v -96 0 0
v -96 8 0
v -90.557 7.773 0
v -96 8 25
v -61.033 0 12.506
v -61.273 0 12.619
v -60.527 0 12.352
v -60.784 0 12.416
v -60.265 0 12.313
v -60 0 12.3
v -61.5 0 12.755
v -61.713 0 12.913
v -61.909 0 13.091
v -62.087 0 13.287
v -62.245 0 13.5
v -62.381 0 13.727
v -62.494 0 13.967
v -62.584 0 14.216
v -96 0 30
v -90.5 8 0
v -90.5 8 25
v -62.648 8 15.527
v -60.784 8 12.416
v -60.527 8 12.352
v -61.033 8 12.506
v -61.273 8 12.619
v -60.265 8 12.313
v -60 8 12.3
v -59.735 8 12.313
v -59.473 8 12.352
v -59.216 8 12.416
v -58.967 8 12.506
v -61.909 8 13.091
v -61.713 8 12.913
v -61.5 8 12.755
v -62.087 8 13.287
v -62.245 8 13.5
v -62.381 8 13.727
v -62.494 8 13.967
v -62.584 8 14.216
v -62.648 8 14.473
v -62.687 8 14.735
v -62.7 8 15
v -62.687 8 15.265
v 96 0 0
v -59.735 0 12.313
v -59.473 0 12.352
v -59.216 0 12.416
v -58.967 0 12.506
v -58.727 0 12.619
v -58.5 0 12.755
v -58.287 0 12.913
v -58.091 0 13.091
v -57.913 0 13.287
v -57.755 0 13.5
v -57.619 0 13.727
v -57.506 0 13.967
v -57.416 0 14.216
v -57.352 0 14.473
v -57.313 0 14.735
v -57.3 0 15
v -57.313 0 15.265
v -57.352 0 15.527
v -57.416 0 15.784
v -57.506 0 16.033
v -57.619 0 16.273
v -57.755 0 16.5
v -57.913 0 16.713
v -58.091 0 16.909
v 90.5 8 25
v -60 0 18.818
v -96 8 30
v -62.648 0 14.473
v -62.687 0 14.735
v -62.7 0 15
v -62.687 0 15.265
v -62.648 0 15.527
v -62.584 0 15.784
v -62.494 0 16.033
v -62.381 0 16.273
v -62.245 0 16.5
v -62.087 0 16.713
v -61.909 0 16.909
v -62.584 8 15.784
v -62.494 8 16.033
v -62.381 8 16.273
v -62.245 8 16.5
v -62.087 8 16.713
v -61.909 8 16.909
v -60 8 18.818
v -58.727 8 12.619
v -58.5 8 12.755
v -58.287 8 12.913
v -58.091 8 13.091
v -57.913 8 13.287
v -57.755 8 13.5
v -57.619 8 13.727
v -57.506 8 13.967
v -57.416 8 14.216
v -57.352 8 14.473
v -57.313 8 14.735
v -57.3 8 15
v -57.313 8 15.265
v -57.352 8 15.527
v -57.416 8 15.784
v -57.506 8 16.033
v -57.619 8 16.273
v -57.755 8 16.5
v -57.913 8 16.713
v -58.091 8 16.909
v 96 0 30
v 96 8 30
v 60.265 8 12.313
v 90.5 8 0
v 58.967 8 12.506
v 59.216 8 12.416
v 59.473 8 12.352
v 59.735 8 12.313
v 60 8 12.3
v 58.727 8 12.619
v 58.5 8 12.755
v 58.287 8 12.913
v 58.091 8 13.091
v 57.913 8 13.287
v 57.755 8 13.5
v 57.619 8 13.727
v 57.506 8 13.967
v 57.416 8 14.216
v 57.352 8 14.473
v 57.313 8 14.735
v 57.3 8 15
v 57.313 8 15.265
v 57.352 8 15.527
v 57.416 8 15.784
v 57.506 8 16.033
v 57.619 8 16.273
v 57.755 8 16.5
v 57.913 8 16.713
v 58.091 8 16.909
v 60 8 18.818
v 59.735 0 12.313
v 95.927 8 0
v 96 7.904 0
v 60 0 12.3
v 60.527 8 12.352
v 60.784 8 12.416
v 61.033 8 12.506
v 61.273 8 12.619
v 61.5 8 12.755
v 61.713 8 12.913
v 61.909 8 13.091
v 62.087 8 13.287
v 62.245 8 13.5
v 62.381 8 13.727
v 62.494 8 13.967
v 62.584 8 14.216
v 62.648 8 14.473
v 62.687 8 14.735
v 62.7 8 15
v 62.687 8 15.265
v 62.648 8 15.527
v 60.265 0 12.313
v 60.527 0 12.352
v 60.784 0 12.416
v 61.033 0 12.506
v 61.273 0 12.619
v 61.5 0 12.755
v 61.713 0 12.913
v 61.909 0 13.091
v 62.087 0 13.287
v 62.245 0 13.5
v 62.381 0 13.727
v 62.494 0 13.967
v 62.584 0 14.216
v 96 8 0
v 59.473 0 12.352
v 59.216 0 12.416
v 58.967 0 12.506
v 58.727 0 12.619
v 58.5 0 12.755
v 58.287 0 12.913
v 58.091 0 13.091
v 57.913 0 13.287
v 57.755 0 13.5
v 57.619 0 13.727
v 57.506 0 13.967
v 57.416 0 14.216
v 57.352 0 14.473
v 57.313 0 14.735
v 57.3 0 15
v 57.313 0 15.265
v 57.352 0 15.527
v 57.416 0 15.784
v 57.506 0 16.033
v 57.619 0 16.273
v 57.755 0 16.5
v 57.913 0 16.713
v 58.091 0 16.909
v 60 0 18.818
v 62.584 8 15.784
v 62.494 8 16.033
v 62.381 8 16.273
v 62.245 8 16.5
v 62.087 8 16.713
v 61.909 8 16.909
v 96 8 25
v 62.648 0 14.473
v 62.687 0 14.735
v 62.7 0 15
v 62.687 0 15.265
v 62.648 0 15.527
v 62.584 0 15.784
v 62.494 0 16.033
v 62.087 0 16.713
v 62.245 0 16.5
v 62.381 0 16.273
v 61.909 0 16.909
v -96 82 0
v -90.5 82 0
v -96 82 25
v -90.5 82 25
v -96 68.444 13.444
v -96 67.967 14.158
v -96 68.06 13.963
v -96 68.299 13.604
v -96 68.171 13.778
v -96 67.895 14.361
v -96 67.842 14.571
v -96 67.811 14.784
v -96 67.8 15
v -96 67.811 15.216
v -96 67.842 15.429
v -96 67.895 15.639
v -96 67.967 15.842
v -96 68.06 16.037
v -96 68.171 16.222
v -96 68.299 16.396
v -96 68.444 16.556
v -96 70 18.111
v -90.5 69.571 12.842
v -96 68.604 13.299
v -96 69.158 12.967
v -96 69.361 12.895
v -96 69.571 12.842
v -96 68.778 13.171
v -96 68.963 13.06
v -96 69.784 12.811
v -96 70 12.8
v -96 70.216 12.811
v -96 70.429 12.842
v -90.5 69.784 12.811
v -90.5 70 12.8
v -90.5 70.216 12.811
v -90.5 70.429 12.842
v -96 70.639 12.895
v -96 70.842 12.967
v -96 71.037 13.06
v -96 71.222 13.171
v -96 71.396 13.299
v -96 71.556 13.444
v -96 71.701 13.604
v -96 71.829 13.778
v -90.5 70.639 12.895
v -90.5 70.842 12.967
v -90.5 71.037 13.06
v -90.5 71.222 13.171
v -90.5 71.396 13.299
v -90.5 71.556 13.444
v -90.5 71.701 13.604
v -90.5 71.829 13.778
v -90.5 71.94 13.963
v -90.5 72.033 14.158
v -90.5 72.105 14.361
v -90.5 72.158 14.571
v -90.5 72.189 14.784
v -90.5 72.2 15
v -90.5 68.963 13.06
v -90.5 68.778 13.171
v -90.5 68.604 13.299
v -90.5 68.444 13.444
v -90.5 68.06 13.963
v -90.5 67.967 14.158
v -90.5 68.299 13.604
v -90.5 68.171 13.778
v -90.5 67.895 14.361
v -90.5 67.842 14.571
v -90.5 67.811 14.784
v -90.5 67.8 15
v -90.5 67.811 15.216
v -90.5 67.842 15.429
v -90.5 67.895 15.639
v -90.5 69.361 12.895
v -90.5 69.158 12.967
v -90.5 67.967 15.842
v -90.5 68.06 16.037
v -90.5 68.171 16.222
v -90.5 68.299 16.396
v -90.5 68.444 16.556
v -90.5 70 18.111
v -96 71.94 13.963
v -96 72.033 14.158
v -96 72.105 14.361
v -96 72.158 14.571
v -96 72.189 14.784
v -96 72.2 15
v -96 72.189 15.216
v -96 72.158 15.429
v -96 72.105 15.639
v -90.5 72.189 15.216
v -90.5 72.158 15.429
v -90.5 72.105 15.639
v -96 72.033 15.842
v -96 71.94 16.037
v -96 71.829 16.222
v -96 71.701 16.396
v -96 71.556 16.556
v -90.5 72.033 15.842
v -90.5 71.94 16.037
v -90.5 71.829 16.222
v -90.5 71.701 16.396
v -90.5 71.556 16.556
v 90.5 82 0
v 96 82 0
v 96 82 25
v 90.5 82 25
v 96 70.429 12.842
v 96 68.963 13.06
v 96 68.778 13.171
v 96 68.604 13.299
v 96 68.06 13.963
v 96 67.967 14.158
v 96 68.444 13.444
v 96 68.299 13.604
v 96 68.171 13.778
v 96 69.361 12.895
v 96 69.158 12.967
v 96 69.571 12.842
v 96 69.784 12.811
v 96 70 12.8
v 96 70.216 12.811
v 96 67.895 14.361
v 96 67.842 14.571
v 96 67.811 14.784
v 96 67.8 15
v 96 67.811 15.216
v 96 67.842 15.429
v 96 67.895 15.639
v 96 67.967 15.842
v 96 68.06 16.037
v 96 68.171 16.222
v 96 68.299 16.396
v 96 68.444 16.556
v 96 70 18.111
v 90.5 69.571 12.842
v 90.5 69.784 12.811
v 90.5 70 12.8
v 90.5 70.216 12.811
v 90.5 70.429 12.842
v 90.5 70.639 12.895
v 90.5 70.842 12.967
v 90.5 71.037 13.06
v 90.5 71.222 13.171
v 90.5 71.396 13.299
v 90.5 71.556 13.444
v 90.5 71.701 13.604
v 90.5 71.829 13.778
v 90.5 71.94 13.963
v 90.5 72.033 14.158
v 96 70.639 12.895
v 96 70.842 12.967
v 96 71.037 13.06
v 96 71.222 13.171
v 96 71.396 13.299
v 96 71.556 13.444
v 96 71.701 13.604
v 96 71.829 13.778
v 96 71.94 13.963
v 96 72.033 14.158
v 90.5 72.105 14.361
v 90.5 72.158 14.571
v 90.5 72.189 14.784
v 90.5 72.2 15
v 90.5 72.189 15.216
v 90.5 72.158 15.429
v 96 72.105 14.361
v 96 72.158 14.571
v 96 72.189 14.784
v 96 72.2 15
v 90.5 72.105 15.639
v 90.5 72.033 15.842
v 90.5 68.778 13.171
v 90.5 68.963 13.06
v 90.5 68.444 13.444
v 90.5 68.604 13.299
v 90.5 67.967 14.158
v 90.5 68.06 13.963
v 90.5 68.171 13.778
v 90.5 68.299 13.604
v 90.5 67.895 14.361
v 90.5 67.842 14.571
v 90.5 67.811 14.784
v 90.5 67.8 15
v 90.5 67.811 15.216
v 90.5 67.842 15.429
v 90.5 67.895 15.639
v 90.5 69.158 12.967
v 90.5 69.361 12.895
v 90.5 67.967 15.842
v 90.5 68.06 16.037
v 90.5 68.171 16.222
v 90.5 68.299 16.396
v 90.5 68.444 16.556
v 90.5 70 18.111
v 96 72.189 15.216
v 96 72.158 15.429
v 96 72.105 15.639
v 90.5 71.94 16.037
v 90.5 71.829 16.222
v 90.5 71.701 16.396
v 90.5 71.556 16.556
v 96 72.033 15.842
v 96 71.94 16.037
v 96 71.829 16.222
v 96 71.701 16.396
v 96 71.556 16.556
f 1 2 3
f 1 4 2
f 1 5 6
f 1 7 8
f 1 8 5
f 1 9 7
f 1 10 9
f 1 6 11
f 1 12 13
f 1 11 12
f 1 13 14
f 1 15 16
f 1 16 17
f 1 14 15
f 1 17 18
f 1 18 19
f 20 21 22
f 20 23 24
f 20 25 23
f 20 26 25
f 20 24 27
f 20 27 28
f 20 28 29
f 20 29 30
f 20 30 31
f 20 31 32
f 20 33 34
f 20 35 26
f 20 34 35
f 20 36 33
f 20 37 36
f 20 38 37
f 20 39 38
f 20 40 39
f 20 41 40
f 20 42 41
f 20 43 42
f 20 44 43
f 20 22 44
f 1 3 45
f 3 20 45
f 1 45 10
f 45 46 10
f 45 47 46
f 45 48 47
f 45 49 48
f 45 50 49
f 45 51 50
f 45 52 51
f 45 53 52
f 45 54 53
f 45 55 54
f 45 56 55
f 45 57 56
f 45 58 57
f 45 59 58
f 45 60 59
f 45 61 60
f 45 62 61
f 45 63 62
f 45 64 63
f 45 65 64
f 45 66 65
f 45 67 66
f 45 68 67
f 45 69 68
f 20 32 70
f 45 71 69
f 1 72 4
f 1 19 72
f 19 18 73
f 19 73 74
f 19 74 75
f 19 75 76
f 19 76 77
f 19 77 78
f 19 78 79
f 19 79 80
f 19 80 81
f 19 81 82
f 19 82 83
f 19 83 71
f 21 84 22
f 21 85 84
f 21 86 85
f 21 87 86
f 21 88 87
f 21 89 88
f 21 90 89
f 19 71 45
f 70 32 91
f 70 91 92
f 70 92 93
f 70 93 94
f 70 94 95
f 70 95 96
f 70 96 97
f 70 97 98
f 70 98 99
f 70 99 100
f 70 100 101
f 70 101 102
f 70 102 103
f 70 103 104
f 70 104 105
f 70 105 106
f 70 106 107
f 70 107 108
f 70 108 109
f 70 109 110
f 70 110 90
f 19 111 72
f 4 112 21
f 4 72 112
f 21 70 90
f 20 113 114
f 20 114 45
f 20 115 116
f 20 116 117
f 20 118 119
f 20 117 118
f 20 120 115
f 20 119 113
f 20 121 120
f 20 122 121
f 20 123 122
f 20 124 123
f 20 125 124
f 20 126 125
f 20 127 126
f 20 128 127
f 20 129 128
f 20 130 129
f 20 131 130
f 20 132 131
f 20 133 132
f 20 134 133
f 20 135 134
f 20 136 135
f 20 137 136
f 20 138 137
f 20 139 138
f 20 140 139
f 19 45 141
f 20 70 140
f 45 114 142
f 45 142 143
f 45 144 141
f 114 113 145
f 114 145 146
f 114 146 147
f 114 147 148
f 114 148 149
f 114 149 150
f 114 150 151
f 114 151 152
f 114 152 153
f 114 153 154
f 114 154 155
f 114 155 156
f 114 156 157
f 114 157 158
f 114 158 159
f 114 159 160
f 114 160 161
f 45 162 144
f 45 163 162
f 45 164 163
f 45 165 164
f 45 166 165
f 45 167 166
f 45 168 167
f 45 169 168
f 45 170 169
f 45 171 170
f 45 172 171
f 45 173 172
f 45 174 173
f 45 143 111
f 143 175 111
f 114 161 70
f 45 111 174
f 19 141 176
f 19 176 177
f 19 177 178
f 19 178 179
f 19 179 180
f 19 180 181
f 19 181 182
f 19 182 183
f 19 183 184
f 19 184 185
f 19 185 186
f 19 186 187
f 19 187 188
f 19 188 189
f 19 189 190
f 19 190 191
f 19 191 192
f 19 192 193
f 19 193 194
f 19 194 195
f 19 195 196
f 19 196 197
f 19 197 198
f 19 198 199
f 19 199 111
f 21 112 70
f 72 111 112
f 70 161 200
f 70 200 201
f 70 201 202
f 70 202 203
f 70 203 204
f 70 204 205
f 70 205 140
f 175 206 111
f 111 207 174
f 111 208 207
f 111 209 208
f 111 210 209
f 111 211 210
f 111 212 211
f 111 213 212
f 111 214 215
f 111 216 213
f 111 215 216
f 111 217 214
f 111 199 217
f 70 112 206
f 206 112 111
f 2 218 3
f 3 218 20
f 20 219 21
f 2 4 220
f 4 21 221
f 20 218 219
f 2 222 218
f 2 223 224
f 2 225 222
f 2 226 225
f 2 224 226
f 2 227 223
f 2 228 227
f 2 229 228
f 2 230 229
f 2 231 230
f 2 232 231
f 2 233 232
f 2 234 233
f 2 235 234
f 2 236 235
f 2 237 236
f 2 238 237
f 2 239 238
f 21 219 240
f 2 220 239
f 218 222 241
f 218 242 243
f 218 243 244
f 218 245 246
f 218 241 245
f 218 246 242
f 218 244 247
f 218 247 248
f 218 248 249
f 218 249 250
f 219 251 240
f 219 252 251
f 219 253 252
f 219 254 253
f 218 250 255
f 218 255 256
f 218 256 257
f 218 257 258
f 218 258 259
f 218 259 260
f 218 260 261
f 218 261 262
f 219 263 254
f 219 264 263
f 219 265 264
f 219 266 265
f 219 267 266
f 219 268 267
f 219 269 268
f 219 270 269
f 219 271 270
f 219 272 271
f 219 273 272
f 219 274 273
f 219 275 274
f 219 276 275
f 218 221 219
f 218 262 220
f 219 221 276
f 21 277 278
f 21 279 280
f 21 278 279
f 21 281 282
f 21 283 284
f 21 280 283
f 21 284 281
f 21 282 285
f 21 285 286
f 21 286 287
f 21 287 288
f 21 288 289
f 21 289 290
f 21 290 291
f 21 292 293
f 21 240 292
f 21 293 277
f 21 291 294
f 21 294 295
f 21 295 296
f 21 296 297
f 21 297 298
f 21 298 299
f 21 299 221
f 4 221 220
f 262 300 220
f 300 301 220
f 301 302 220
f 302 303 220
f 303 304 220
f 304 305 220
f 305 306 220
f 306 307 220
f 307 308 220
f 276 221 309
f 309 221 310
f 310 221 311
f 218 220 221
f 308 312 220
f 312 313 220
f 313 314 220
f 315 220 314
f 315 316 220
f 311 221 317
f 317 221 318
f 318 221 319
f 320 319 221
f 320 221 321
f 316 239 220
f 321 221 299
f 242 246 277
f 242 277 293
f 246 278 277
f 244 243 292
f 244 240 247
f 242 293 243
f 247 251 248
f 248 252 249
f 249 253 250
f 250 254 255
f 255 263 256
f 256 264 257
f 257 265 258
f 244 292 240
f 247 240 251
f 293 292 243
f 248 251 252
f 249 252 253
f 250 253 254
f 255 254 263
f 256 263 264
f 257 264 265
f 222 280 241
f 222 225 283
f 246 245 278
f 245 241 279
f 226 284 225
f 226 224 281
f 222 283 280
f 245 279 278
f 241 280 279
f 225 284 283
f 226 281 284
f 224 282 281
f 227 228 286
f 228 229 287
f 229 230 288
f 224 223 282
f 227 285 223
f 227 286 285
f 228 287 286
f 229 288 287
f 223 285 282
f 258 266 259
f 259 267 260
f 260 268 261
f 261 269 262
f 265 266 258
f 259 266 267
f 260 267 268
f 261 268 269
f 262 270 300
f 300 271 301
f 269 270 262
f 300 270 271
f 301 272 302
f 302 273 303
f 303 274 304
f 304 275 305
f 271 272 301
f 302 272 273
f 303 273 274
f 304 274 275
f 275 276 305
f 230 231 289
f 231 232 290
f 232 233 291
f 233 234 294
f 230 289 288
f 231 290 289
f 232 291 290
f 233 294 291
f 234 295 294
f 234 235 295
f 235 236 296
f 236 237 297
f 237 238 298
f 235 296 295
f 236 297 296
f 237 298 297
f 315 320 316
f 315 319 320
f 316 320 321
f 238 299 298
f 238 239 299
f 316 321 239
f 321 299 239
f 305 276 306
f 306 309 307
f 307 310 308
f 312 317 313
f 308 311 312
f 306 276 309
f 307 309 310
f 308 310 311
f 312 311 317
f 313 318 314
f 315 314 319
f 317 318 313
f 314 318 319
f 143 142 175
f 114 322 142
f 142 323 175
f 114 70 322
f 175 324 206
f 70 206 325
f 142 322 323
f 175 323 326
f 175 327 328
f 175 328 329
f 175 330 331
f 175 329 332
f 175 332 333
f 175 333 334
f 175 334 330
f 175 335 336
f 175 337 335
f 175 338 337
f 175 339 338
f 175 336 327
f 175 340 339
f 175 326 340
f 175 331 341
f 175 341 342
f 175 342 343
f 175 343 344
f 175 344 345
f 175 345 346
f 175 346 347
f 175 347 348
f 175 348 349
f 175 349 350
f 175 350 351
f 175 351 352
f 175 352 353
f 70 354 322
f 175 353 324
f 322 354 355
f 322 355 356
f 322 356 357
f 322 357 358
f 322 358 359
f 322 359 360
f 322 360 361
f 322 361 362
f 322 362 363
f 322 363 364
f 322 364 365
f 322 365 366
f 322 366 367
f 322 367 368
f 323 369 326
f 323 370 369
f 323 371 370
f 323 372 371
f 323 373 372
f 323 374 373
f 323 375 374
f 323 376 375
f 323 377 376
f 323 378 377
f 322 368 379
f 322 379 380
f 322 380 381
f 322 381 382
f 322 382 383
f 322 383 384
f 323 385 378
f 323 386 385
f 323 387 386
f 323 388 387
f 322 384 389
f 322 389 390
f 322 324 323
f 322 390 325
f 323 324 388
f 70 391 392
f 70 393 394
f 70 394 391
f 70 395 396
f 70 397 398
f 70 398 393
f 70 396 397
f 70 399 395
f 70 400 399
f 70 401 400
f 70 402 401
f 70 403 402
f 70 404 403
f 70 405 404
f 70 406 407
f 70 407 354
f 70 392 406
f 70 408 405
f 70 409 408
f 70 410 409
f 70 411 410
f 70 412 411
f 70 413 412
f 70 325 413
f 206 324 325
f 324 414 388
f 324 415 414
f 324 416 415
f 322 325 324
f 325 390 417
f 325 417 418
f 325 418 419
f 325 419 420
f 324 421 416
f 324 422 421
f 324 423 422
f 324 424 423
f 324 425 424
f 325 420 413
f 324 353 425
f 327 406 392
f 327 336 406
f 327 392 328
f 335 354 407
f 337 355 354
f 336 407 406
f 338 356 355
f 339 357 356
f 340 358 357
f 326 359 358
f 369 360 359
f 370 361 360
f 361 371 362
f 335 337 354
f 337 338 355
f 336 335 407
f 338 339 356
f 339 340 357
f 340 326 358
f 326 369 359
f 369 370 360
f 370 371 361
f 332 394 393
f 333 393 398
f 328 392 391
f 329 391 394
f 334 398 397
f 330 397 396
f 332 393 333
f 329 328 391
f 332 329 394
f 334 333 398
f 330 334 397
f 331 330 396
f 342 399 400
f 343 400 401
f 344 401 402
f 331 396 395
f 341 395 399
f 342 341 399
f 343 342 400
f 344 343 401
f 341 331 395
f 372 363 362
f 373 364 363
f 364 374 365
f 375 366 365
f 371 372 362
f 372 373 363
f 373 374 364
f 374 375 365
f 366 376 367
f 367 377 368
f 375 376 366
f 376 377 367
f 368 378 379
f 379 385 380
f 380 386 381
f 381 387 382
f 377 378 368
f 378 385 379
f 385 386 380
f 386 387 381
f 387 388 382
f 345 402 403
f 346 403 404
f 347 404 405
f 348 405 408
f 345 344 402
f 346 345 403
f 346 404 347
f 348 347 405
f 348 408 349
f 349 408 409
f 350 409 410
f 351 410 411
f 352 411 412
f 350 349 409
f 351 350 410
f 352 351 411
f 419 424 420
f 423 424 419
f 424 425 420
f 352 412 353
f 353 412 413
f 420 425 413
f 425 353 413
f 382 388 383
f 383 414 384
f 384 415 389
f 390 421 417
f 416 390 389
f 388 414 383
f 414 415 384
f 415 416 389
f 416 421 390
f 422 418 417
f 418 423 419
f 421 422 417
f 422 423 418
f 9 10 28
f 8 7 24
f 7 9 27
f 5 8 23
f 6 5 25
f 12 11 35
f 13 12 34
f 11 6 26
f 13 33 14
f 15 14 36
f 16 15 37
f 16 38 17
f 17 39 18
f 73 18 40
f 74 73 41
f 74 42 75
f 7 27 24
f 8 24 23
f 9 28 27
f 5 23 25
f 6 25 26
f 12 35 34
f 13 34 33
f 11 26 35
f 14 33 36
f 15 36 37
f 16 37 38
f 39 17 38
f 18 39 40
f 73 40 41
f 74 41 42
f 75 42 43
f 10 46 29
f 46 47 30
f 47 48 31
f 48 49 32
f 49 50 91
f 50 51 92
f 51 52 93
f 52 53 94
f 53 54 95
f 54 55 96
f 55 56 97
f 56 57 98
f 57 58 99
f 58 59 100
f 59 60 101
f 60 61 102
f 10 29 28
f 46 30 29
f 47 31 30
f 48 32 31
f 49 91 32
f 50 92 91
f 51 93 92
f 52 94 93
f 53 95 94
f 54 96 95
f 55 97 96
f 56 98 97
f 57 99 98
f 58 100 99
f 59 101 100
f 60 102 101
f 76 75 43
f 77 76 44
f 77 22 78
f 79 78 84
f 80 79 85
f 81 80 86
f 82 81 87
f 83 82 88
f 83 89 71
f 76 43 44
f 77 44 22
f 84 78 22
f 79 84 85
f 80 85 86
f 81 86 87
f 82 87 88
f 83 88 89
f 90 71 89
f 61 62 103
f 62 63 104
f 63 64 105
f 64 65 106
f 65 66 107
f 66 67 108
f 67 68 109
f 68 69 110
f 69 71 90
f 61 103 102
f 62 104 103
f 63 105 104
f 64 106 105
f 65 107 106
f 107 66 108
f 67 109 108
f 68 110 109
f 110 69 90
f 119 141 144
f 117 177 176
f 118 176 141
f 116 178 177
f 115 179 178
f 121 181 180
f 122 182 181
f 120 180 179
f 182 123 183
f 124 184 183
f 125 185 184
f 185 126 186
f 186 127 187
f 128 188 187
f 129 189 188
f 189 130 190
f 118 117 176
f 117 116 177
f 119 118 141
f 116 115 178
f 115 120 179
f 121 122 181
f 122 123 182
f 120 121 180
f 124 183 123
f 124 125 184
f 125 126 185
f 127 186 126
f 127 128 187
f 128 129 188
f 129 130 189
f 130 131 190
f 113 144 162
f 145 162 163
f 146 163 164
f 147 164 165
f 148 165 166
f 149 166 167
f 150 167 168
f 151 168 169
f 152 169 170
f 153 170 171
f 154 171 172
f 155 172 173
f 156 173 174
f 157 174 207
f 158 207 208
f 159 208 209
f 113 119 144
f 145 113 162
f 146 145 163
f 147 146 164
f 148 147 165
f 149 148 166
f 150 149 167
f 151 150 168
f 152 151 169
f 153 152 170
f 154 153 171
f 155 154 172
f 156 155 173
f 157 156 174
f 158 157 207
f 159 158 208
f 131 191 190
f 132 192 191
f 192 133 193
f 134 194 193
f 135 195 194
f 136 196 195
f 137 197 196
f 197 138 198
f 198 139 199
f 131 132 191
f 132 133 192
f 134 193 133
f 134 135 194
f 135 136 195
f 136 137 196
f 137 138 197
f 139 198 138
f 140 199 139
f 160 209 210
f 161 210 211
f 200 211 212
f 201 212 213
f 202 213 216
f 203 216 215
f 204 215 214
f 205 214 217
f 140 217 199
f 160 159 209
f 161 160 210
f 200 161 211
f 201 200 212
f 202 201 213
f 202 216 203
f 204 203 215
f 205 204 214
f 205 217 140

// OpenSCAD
// VMax external draft 1; mm; generated by external-enclosure-v1.py
translate([0,70,-12]){difference(){difference(){difference(){union(){difference(){union(){translate([0,-66,12]){translate([-96.0,-4.0,0])cube([192,8,30]);}translate([-93.25,-25.5,12]){translate([-2.75,-37.5,0])cube([5.5,75,25]);}}translate([-98.25,0,27]){rotate([0,0,90]){rotate([90,0,0]){linear_extrude(height=10)polygon(points=[[-1.5556349186104046, 1.5556349186104048], [-1.7006229973980216, 1.3956652251600201], [-1.8292331470655998, 1.2222545126431248], [-1.940226781566381, 1.0370728210171953], [-2.032534971524831, 0.8419035512031978], [-2.1052687386108597, 0.6386262899598173], [-2.157727616887107, 0.429198708435482], [-2.189406398678833, 0.21563770872503382], [-2.2, 2.6942229581241775e-16], [-2.1894063986788335, -0.21563770872503332], [-2.157727616887107, -0.4291987084354824], [-2.1052687386108597, -0.6386262899598167], [-2.0325349715248313, -0.8419035512031974], [-1.9402267815663812, -1.037072821017195], [-1.8292331470655996, -1.2222545126431252], [-1.7006229973980218, -1.3956652251600197], [-1.555634918610405, -1.5556349186104046], [-1.3956652251600212, -1.7006229973980207], [-1.2222545126431248, -1.8292331470655996], [-1.0370728210171953, -1.940226781566381], [-0.8419035512031969, -2.0325349715248313], [-0.6386262899598174, -2.1052687386108597], [-0.4291987084354831, -2.1577276168871067], [-0.21563770872503302, -2.1894063986788335], [-4.0413344371862655e-16, -2.2], [0.2156377087250322, -2.1894063986788335], [0.4291987084354823, -2.157727616887107], [0.6386262899598165, -2.1052687386108597], [0.841903551203198, -2.032534971524831], [1.0370728210171947, -1.9402267815663812], [1.2222545126431241, -1.8292331470656003], [1.3956652251600203, -1.7006229973980214], [1.5556349186104044, -1.555634918610405], [1.700622997398022, -1.3956652251600197], [1.8292331470655996, -1.2222545126431248], [1.9402267815663807, -1.0370728210171956], [2.0325349715248313, -0.8419035512031972], [2.1052687386108597, -0.6386262899598175], [2.1577276168871067, -0.42919870843548324], [2.1894063986788335, -0.21563770872503313], [2.2, -5.388445916248355e-16], [2.189406398678833, 0.21563770872503402], [2.157727616887107, 0.4291987084354822], [2.1052687386108597, 0.6386262899598164], [2.032534971524831, 0.8419035512031979], [1.9402267815663812, 1.0370728210171947], [1.8292331470656005, 1.2222545126431241], [1.7006229973980214, 1.3956652251600201], [1.555634918610405, 1.5556349186104044], [0, 3.1112698372208096]]);}}}}translate([93.25,-25.5,12]){translate([-2.75,-37.5,0])cube([5.5,75,25]);}}translate([88.25,0,27]){rotate([0,0,90]){rotate([90,0,0]){linear_extrude(height=10)polygon(points=[[-1.5556349186104046, 1.5556349186104048], [-1.7006229973980216, 1.3956652251600201], [-1.8292331470655998, 1.2222545126431248], [-1.940226781566381, 1.0370728210171953], [-2.032534971524831, 0.8419035512031978], [-2.1052687386108597, 0.6386262899598173], [-2.157727616887107, 0.429198708435482], [-2.189406398678833, 0.21563770872503382], [-2.2, 2.6942229581241775e-16], [-2.1894063986788335, -0.21563770872503332], [-2.157727616887107, -0.4291987084354824], [-2.1052687386108597, -0.6386262899598167], [-2.0325349715248313, -0.8419035512031974], [-1.9402267815663812, -1.037072821017195], [-1.8292331470655996, -1.2222545126431252], [-1.7006229973980218, -1.3956652251600197], [-1.555634918610405, -1.5556349186104046], [-1.3956652251600212, -1.7006229973980207], [-1.2222545126431248, -1.8292331470655996], [-1.0370728210171953, -1.940226781566381], [-0.8419035512031969, -2.0325349715248313], [-0.6386262899598174, -2.1052687386108597], [-0.4291987084354831, -2.1577276168871067], [-0.21563770872503302, -2.1894063986788335], [-4.0413344371862655e-16, -2.2], [0.2156377087250322, -2.1894063986788335], [0.4291987084354823, -2.157727616887107], [0.6386262899598165, -2.1052687386108597], [0.841903551203198, -2.032534971524831], [1.0370728210171947, -1.9402267815663812], [1.2222545126431241, -1.8292331470656003], [1.3956652251600203, -1.7006229973980214], [1.5556349186104044, -1.555634918610405], [1.700622997398022, -1.3956652251600197], [1.8292331470655996, -1.2222545126431248], [1.9402267815663807, -1.0370728210171956], [2.0325349715248313, -0.8419035512031972], [2.1052687386108597, -0.6386262899598175], [2.1577276168871067, -0.42919870843548324], [2.1894063986788335, -0.21563770872503313], [2.2, -5.388445916248355e-16], [2.189406398678833, 0.21563770872503402], [2.157727616887107, 0.4291987084354822], [2.1052687386108597, 0.6386262899598164], [2.032534971524831, 0.8419035512031979], [1.9402267815663812, 1.0370728210171947], [1.8292331470656005, 1.2222545126431241], [1.7006229973980214, 1.3956652251600201], [1.555634918610405, 1.5556349186104044], [0, 3.1112698372208096]]);}}}}translate([-60,-60,27]){rotate([90,0,0]){linear_extrude(height=12)polygon(points=[[-1.9091883092036783, 1.9091883092036785], [-2.08712822407939, 1.712861867241843], [-2.2449679532168725, 1.5000396291529259], [-2.3811874137405584, 1.272771189430194], [-2.4944747377804743, 1.0332452673857428], [-2.583738906476964, 0.7837686285870485], [-2.6481202570887223, 0.5267438694435461], [-2.6869987620149316, 0.26464627888981423], [-2.7, 3.3065463576978537e-16], [-2.686998762014932, -0.2646462788898136], [-2.6481202570887223, -0.5267438694435466], [-2.5837389064769645, -0.7837686285870478], [-2.494474737780475, -1.0332452673857422], [-2.381187413740559, -1.2727711894301936], [-2.2449679532168725, -1.5000396291529263], [-2.0871282240793905, -1.7128618672418423], [-1.9091883092036788, -1.9091883092036783], [-1.712861867241844, -2.087128224079389], [-1.5000396291529259, -2.2449679532168725], [-1.2727711894301943, -2.3811874137405584], [-1.0332452673857417, -2.494474737780475], [-0.7837686285870487, -2.583738906476964], [-0.5267438694435475, -2.648120257088722], [-0.26464627888981324, -2.686998762014932], [-4.959819536546781e-16, -2.7], [0.26464627888981224, -2.686998762014932], [0.5267438694435465, -2.6481202570887223], [0.7837686285870475, -2.5837389064769645], [1.033245267385743, -2.494474737780474], [1.2727711894301936, -2.381187413740559], [1.500039629152925, -2.244967953216873], [1.7128618672418432, -2.0871282240793896], [1.9091883092036779, -1.9091883092036788], [2.0871282240793905, -1.7128618672418423], [2.2449679532168725, -1.5000396291529259], [2.381187413740558, -1.2727711894301945], [2.494474737780475, -1.033245267385742], [2.583738906476964, -0.7837686285870488], [2.648120257088722, -0.5267438694435476], [2.686998762014932, -0.2646462788898134], [2.7, -6.613092715395707e-16], [2.6869987620149316, 0.26464627888981446], [2.6481202570887223, 0.5267438694435463], [2.5837389064769645, 0.7837686285870474], [2.4944747377804743, 1.0332452673857428], [2.381187413740559, 1.2727711894301934], [2.2449679532168734, 1.500039629152925], [2.0871282240793896, 1.712861867241843], [1.9091883092036788, 1.9091883092036779], [0, 3.818376618407357]]);}}}translate([60,-60,27]){rotate([90,0,0]){linear_extrude(height=12)polygon(points=[[-1.9091883092036783, 1.9091883092036785], [-2.08712822407939, 1.712861867241843], [-2.2449679532168725, 1.5000396291529259], [-2.3811874137405584, 1.272771189430194], [-2.4944747377804743, 1.0332452673857428], [-2.583738906476964, 0.7837686285870485], [-2.6481202570887223, 0.5267438694435461], [-2.6869987620149316, 0.26464627888981423], [-2.7, 3.3065463576978537e-16], [-2.686998762014932, -0.2646462788898136], [-2.6481202570887223, -0.5267438694435466], [-2.5837389064769645, -0.7837686285870478], [-2.494474737780475, -1.0332452673857422], [-2.381187413740559, -1.2727711894301936], [-2.2449679532168725, -1.5000396291529263], [-2.0871282240793905, -1.7128618672418423], [-1.9091883092036788, -1.9091883092036783], [-1.712861867241844, -2.087128224079389], [-1.5000396291529259, -2.2449679532168725], [-1.2727711894301943, -2.3811874137405584], [-1.0332452673857417, -2.494474737780475], [-0.7837686285870487, -2.583738906476964], [-0.5267438694435475, -2.648120257088722], [-0.26464627888981324, -2.686998762014932], [-4.959819536546781e-16, -2.7], [0.26464627888981224, -2.686998762014932], [0.5267438694435465, -2.6481202570887223], [0.7837686285870475, -2.5837389064769645], [1.033245267385743, -2.494474737780474], [1.2727711894301936, -2.381187413740559], [1.500039629152925, -2.244967953216873], [1.7128618672418432, -2.0871282240793896], [1.9091883092036779, -1.9091883092036788], [2.0871282240793905, -1.7128618672418423], [2.2449679532168725, -1.5000396291529259], [2.381187413740558, -1.2727711894301945], [2.494474737780475, -1.033245267385742], [2.583738906476964, -0.7837686285870488], [2.648120257088722, -0.5267438694435476], [2.686998762014932, -0.2646462788898134], [2.7, -6.613092715395707e-16], [2.6869987620149316, 0.26464627888981446], [2.6481202570887223, 0.5267438694435463], [2.5837389064769645, 0.7837686285870474], [2.4944747377804743, 1.0332452673857428], [2.381187413740559, 1.2727711894301934], [2.2449679532168734, 1.500039629152925], [2.0871282240793896, 1.712861867241843], [1.9091883092036788, 1.9091883092036779], [0, 3.818376618407357]]);}}}}
